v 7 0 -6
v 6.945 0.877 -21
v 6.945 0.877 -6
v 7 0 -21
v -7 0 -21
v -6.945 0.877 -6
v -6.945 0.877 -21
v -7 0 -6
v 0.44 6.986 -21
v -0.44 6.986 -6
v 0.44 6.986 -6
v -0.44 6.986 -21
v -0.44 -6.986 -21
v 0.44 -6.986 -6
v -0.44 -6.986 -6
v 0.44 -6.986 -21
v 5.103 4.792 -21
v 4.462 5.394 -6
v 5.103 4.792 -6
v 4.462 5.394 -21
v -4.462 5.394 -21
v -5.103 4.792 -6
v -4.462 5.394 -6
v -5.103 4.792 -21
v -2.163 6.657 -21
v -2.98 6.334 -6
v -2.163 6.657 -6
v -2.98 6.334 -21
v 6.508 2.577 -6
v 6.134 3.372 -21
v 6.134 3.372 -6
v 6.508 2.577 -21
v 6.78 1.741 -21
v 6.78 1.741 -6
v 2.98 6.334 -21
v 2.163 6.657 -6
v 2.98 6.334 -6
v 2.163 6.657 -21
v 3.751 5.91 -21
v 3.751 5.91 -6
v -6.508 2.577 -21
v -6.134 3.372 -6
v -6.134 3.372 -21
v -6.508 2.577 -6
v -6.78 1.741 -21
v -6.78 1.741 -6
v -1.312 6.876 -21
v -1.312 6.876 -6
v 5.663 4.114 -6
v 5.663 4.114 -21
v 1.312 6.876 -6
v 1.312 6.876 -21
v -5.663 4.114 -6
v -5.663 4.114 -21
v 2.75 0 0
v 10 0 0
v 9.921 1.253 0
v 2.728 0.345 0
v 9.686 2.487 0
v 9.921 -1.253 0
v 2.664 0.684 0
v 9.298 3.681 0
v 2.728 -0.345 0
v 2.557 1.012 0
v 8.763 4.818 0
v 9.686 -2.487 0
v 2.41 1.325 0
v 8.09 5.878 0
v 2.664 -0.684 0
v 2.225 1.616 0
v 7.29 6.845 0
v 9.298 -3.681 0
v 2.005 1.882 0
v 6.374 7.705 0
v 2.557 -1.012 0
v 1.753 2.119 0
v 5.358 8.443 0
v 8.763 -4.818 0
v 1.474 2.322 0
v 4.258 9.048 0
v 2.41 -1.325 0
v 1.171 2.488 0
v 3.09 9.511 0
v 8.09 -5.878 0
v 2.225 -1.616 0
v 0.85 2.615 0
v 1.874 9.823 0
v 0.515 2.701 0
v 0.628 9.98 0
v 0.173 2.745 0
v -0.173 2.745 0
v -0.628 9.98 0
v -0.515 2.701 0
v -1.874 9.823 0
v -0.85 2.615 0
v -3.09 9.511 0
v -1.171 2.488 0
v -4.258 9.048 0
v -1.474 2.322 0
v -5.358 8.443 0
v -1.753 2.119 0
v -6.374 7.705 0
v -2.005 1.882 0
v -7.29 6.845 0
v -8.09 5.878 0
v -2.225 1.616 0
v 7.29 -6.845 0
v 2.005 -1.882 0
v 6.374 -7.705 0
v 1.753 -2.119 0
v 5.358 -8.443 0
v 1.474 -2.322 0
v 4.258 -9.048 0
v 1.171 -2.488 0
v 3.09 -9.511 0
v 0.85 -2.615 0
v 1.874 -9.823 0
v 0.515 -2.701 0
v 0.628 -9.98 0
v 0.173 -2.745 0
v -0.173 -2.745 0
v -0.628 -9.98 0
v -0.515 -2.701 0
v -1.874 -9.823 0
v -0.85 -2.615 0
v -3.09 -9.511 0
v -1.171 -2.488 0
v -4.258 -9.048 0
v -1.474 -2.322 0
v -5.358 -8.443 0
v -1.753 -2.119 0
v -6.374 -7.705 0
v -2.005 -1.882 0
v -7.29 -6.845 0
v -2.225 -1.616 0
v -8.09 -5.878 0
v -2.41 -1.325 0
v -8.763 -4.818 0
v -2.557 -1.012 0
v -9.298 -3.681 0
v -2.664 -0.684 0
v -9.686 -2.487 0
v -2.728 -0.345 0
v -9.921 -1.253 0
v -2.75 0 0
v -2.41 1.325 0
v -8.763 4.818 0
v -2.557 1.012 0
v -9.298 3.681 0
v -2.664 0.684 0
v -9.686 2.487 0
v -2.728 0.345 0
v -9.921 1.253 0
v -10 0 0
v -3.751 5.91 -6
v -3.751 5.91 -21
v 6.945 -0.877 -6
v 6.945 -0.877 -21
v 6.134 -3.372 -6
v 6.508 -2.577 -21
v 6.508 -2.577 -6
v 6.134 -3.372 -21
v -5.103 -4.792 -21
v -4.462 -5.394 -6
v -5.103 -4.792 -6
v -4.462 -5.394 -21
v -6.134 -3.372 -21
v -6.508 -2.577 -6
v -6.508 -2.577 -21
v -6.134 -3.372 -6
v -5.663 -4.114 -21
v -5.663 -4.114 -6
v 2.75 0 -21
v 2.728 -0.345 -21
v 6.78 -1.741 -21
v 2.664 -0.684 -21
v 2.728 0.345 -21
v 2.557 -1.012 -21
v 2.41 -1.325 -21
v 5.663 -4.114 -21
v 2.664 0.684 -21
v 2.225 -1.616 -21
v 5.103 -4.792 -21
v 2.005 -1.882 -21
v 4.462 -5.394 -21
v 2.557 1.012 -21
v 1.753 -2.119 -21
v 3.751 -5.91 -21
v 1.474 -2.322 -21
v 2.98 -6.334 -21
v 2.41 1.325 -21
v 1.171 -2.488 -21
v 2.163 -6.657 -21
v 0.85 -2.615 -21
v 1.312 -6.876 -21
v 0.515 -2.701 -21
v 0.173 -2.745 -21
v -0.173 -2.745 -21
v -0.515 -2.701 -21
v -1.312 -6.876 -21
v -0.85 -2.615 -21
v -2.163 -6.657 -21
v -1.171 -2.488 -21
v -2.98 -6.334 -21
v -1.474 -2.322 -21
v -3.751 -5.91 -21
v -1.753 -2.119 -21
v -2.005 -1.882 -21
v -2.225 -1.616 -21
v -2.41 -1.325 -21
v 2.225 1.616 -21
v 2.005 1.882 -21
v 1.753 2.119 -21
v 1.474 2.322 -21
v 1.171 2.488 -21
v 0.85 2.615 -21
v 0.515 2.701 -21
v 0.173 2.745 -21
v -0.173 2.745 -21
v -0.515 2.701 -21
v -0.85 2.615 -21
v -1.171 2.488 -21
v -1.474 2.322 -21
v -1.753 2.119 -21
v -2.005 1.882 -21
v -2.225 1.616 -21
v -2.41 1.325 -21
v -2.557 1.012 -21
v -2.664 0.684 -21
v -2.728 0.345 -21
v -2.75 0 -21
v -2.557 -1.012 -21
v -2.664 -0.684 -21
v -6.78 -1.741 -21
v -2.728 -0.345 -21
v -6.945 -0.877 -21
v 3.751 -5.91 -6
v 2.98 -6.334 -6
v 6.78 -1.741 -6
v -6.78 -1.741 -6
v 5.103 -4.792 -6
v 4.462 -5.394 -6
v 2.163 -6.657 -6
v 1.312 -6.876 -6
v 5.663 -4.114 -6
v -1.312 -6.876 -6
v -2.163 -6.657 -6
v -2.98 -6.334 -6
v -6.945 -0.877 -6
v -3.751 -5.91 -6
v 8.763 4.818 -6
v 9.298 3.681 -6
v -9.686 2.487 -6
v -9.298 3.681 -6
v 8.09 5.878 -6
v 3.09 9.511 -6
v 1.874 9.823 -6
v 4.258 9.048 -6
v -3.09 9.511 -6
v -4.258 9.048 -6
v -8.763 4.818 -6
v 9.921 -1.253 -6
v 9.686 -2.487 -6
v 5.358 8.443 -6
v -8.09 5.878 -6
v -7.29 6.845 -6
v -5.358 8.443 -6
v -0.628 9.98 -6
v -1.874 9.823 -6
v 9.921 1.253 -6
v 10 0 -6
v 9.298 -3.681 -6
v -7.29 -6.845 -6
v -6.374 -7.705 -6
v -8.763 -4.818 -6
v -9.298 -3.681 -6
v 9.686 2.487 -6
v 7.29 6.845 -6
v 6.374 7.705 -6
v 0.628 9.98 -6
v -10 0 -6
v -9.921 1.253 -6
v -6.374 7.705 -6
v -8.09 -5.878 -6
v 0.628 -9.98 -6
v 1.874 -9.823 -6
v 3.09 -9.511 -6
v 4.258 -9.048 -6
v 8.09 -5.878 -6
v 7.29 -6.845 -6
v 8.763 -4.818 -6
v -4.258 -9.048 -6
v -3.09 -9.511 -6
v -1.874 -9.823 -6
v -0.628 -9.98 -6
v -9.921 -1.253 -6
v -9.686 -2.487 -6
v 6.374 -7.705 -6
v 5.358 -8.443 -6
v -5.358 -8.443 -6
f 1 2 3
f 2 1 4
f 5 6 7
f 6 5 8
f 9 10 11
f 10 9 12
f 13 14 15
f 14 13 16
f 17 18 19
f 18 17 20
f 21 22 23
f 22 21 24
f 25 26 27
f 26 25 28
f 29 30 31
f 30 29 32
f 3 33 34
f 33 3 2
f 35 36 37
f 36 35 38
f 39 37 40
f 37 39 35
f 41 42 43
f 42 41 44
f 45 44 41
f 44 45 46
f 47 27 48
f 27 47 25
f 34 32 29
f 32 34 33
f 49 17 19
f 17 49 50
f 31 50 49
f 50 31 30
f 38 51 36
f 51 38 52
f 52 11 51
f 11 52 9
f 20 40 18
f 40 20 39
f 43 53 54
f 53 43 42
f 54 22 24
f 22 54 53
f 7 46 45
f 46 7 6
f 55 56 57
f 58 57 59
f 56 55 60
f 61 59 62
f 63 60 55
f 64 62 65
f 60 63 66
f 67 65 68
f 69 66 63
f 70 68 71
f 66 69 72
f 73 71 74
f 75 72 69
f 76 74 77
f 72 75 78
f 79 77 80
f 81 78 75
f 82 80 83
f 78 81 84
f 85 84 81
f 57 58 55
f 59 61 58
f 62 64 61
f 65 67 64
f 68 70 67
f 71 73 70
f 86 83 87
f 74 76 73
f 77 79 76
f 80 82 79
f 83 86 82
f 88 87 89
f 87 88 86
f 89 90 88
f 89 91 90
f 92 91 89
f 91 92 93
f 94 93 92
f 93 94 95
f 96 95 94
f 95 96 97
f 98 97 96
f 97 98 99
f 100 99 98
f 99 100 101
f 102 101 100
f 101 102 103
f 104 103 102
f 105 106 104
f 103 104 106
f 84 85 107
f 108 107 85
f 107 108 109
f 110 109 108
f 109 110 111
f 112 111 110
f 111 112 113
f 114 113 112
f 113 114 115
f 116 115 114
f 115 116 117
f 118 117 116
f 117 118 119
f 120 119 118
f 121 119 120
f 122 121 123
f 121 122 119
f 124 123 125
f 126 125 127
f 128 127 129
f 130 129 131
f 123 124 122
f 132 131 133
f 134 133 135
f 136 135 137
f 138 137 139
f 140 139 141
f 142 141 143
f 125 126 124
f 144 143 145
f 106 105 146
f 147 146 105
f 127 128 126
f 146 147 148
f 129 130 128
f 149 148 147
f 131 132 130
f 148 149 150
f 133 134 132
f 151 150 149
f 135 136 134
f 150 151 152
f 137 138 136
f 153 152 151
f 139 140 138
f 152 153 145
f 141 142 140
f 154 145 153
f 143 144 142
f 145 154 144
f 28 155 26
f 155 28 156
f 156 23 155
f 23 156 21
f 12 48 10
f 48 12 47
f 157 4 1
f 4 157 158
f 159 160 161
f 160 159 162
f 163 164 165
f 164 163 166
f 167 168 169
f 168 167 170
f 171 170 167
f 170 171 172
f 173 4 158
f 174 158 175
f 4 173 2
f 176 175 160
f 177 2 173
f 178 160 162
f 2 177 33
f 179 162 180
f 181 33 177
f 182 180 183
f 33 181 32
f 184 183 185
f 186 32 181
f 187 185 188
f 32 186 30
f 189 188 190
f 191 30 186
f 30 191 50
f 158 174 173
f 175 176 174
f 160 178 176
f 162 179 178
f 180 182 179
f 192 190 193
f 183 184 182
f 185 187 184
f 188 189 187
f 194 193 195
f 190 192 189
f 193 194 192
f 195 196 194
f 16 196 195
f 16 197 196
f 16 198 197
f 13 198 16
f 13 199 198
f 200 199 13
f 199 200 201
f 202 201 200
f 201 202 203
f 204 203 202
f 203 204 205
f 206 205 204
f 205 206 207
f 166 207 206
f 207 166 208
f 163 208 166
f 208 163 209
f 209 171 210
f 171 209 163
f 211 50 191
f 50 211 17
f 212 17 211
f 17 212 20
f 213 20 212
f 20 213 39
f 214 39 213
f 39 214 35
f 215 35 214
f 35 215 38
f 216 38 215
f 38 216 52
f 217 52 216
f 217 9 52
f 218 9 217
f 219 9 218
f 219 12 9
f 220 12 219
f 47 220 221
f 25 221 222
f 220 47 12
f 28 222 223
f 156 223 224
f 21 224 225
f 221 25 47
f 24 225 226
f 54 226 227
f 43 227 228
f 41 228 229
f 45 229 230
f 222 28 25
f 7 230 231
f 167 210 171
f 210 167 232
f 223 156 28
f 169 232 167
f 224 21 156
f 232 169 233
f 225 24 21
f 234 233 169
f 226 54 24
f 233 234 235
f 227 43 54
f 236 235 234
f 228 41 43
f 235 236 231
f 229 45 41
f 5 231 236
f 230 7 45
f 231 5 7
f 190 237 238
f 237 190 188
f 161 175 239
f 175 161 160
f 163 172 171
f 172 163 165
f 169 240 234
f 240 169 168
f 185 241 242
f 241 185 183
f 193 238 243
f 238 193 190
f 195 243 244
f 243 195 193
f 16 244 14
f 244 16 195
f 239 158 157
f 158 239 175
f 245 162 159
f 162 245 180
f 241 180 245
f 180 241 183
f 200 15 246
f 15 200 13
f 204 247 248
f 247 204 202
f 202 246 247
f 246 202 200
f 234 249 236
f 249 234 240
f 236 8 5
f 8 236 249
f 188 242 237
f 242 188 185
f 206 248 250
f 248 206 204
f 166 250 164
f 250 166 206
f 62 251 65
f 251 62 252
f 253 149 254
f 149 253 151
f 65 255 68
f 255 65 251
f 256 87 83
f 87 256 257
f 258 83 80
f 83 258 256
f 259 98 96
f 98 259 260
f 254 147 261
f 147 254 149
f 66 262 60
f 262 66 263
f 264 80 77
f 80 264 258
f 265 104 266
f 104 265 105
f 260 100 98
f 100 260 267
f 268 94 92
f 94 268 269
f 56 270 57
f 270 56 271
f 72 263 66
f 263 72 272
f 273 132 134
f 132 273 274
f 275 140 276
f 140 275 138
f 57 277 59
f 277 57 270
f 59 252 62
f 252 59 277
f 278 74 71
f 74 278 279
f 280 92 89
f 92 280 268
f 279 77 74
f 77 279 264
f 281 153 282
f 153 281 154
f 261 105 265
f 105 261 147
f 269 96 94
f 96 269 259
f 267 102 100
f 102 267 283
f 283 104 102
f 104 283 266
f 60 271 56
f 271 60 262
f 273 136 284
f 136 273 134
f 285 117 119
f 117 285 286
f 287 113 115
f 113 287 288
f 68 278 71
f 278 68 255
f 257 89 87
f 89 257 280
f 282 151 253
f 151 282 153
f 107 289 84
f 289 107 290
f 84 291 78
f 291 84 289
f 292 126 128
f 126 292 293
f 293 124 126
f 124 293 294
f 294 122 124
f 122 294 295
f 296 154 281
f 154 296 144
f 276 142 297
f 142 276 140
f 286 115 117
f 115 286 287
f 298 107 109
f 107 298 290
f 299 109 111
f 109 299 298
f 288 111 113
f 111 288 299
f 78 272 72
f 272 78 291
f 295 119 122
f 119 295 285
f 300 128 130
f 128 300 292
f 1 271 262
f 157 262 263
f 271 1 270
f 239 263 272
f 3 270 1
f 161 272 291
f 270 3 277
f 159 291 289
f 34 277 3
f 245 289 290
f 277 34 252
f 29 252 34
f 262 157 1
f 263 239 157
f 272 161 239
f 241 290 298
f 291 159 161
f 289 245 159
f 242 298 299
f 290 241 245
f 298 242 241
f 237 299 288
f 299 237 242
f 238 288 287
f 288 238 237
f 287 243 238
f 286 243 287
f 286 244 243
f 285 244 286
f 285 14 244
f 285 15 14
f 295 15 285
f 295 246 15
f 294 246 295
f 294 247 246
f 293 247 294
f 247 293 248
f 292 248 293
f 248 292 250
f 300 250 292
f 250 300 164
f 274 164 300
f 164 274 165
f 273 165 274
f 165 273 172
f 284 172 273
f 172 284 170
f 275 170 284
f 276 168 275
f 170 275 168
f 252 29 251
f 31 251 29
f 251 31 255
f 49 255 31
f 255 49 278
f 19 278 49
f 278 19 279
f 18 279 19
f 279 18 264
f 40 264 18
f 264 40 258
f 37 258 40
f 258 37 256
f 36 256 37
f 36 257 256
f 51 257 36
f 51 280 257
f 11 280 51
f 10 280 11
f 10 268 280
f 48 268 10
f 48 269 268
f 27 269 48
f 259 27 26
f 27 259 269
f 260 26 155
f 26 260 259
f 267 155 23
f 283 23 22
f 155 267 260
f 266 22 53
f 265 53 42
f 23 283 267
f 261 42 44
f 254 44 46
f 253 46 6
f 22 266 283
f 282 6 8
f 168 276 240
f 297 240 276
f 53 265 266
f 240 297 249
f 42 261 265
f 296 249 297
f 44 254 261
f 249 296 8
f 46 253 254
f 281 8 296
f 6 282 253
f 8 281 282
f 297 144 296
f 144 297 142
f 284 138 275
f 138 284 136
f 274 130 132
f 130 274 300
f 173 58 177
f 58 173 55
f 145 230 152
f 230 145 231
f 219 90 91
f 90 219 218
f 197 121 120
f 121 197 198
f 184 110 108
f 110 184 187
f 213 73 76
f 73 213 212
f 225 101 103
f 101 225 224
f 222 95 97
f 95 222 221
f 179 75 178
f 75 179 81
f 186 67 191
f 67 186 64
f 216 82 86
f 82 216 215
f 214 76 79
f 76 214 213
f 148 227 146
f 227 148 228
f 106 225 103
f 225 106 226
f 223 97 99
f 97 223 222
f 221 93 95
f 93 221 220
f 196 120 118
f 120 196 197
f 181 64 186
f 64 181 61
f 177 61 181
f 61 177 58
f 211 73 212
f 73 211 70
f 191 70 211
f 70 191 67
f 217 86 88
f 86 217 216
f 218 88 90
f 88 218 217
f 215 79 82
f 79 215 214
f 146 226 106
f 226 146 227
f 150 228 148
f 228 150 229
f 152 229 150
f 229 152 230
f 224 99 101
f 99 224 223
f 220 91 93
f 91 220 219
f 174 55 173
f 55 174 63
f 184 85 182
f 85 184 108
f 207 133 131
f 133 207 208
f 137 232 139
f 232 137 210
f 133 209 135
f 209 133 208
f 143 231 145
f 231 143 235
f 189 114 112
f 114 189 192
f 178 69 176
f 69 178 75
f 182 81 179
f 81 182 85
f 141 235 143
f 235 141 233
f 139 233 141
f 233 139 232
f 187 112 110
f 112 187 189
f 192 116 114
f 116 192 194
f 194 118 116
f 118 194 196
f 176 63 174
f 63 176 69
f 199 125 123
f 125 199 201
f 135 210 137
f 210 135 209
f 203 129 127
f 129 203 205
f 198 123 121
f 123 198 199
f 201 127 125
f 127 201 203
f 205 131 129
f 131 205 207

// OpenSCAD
$fn = 50;


difference() {
	union() {
		translate(v = [0, 0, -21.0000000000]) {
			cylinder(h = 21, r = 7.0000000000);
		}
		translate(v = [0, 0, -6.0000000000]) {
			cylinder(h = 6, r = 10.0000000000);
		}
	}
	union() {
		#translate(v = [0, 0, -21]) {
			cylinder(h = 21, r = 2.7500000000);
		}
	}
}
